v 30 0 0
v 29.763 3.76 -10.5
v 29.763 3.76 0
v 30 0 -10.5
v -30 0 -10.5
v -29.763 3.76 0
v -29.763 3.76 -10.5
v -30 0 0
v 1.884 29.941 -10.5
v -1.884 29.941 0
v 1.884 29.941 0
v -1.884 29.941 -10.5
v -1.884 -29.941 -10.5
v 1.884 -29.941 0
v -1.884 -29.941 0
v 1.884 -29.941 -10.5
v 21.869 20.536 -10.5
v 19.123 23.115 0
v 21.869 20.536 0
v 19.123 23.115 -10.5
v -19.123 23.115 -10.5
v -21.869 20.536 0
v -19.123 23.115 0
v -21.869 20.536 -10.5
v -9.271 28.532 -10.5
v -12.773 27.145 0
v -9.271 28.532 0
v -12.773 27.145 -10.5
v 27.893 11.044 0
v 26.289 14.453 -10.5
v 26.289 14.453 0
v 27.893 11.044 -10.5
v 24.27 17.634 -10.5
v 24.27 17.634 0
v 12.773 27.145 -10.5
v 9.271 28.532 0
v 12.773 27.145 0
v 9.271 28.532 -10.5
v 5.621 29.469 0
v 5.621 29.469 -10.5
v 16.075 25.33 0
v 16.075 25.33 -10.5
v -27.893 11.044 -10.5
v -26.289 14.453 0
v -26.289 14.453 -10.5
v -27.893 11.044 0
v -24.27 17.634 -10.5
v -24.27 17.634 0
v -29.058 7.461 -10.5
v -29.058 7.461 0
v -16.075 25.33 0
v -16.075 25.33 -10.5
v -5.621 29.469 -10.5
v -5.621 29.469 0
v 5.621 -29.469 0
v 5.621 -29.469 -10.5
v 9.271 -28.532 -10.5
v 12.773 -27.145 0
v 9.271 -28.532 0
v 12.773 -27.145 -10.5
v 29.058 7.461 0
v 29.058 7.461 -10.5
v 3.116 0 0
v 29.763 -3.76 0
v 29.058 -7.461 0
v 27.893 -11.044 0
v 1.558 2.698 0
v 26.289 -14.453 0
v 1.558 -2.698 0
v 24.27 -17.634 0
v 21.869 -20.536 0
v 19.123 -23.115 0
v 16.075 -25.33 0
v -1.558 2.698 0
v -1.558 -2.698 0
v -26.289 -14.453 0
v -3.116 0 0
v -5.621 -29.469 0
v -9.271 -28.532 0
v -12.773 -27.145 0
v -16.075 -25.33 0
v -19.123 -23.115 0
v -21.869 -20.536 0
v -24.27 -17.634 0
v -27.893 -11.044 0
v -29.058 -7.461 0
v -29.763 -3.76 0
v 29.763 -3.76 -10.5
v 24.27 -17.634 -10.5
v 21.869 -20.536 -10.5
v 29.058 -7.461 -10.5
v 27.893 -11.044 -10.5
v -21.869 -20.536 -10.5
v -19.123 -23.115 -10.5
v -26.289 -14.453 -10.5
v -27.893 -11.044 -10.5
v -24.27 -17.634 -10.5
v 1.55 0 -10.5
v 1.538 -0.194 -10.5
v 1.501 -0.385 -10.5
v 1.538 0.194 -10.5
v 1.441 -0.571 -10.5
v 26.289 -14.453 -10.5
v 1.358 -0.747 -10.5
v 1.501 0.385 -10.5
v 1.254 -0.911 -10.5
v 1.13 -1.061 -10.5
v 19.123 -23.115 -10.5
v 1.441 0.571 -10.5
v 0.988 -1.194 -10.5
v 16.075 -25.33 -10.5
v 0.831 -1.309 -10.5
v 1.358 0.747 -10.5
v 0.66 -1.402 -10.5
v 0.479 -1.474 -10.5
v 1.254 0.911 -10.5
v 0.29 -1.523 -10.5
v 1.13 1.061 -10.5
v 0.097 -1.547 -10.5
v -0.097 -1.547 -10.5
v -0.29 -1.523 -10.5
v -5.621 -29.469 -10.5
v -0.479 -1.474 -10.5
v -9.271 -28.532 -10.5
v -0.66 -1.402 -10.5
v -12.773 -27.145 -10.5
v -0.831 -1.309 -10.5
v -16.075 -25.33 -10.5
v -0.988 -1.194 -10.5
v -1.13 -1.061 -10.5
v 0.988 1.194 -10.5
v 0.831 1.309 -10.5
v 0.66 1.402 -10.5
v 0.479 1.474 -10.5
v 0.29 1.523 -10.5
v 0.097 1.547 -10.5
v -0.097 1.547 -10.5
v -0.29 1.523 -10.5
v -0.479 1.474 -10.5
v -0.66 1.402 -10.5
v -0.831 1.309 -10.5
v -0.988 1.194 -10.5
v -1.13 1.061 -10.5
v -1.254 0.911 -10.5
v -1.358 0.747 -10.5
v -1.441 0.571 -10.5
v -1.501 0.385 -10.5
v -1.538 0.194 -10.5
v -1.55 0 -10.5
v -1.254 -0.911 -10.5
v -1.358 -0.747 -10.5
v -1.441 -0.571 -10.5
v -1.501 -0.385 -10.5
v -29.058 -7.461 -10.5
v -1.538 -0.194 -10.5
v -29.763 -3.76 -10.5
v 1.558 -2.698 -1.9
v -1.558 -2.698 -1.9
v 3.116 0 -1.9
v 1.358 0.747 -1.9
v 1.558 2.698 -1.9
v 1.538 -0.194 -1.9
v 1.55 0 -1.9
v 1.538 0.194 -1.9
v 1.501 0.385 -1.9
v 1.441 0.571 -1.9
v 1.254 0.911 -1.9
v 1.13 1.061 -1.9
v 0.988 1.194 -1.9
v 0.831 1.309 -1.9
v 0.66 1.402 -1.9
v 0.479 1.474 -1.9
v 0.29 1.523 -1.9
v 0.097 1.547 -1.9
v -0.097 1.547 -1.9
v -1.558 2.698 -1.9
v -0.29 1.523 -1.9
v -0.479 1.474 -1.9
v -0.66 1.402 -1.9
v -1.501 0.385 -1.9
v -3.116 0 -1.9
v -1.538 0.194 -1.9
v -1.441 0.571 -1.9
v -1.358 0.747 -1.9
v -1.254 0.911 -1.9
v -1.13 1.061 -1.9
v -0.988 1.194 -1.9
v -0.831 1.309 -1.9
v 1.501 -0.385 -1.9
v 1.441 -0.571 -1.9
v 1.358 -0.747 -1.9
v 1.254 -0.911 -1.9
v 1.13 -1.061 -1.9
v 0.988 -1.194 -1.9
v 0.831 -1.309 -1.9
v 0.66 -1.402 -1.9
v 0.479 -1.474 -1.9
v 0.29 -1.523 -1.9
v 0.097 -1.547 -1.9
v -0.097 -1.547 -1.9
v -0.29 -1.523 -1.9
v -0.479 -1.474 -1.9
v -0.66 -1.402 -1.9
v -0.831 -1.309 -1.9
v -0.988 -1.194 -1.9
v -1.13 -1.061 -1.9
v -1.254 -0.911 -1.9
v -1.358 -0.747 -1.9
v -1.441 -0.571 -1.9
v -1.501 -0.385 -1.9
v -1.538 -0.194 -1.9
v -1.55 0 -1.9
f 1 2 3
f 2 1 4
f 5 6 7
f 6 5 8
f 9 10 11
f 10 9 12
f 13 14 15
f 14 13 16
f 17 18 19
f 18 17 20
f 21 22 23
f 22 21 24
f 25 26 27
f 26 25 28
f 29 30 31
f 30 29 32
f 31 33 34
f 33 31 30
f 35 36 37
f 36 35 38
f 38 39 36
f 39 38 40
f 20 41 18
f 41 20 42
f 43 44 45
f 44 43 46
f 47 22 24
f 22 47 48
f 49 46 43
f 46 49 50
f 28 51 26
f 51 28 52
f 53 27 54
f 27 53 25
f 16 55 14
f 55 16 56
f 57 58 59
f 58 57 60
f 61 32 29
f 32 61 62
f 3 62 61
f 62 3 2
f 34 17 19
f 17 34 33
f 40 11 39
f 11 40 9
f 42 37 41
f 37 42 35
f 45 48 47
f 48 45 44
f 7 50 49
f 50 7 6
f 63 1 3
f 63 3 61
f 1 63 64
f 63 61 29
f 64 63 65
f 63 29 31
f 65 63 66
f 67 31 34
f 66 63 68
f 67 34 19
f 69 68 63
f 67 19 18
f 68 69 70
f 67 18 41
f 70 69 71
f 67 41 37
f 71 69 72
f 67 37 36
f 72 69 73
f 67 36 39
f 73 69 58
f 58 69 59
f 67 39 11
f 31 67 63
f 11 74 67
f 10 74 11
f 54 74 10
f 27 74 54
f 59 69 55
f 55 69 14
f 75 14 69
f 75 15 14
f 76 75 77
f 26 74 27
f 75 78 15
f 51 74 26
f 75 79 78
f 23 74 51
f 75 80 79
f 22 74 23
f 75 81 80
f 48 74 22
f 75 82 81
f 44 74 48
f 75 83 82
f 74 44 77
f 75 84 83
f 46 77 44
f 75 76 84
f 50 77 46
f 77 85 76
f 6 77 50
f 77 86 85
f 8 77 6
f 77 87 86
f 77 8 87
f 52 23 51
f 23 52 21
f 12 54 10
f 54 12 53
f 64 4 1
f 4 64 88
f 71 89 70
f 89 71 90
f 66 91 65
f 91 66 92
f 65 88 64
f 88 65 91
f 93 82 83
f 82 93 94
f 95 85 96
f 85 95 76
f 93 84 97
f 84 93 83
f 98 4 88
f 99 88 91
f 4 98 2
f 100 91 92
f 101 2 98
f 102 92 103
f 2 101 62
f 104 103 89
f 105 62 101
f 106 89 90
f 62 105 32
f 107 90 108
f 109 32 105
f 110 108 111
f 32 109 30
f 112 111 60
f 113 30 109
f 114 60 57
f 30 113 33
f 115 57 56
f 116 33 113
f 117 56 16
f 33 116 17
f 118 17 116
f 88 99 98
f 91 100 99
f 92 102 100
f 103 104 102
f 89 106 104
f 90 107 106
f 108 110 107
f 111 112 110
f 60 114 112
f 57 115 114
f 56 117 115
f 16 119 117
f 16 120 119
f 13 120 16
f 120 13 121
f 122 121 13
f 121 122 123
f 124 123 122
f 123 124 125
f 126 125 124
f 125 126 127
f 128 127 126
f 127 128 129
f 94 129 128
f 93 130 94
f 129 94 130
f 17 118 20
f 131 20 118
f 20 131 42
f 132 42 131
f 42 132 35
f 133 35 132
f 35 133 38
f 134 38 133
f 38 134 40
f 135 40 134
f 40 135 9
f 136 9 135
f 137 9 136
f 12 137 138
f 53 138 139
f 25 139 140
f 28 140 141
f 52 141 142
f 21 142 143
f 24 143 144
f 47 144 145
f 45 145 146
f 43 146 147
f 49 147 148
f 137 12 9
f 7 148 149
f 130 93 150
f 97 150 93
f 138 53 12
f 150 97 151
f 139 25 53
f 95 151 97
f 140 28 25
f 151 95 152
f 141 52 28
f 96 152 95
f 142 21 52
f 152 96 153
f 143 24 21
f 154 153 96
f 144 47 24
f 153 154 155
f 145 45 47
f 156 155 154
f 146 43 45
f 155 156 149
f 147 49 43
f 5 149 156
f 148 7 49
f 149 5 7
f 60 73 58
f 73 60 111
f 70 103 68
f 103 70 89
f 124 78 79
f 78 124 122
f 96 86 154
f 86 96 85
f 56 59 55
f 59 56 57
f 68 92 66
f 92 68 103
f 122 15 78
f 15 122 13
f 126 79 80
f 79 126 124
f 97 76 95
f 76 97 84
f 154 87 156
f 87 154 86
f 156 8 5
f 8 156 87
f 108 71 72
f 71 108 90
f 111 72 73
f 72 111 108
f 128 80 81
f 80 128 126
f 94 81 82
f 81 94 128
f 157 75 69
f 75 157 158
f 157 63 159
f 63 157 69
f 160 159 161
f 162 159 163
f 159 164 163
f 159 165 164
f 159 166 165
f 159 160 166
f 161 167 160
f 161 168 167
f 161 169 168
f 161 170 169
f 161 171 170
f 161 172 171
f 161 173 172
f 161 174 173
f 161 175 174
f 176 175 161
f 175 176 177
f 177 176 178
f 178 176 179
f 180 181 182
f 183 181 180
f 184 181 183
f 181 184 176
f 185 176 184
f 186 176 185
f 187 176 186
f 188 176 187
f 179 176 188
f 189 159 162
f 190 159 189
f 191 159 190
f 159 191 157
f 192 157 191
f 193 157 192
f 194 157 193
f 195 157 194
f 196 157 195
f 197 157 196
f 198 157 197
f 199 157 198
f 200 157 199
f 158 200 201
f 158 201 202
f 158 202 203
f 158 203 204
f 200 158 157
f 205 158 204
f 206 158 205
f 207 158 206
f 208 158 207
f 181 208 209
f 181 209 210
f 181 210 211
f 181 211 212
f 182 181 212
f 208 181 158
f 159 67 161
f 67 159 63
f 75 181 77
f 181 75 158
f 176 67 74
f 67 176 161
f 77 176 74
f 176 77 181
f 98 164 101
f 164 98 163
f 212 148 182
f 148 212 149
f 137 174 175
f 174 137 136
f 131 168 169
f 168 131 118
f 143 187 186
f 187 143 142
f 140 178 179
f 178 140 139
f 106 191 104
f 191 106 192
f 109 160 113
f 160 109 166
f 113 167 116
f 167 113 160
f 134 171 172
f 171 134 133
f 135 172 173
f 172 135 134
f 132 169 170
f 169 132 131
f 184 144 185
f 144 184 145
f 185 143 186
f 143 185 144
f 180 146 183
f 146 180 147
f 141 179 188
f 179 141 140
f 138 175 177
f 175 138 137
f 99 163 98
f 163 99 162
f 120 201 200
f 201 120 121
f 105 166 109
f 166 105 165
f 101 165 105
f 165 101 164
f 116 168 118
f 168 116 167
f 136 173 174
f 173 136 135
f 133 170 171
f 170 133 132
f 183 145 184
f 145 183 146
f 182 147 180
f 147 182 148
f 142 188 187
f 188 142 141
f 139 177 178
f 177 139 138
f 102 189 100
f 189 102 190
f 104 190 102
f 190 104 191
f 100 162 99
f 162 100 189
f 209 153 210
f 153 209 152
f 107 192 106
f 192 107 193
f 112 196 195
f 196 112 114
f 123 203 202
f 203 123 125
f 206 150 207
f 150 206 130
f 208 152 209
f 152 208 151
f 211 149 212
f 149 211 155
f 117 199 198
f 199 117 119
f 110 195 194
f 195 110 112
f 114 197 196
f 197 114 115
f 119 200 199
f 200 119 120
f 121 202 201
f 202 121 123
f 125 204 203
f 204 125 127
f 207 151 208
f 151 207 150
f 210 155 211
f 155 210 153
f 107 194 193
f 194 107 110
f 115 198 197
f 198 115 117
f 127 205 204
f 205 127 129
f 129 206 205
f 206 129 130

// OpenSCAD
$fn = 50;


difference() {
	union() {
		translate(v = [0, 0, -10.5000000000]) {
			cylinder(h = 10.5000000000, r = 30.0000000000);
		}
		translate(v = [0, 0, -9.0000000000]) {
			cylinder(h = 9, r = 2.8750000000);
		}
	}
	union() {
		translate(v = [0, 0, 0]) {
			rotate(a = [0, 0, 0]) {
				difference() {
					union() {
						translate(v = [0, 0, -1.9000000000]) {
							linear_extrude(height = 1.9000000000) {
								polygon(points = [[3.1158000000, 0.0000000000], [1.5579000000, 2.6983619531], [-1.5579000000, 2.6983619531], [-3.1158000000, 0.0000000000], [-1.5579000000, -2.6983619531], [1.5579000000, -2.6983619531]]);
							}
						}
					}
					union();
				}
			}
		}
		#translate(v = [0, 0, -100.0000000000]) {
			cylinder(h = 200, r = 1.5500000000);
		}
	}
}
